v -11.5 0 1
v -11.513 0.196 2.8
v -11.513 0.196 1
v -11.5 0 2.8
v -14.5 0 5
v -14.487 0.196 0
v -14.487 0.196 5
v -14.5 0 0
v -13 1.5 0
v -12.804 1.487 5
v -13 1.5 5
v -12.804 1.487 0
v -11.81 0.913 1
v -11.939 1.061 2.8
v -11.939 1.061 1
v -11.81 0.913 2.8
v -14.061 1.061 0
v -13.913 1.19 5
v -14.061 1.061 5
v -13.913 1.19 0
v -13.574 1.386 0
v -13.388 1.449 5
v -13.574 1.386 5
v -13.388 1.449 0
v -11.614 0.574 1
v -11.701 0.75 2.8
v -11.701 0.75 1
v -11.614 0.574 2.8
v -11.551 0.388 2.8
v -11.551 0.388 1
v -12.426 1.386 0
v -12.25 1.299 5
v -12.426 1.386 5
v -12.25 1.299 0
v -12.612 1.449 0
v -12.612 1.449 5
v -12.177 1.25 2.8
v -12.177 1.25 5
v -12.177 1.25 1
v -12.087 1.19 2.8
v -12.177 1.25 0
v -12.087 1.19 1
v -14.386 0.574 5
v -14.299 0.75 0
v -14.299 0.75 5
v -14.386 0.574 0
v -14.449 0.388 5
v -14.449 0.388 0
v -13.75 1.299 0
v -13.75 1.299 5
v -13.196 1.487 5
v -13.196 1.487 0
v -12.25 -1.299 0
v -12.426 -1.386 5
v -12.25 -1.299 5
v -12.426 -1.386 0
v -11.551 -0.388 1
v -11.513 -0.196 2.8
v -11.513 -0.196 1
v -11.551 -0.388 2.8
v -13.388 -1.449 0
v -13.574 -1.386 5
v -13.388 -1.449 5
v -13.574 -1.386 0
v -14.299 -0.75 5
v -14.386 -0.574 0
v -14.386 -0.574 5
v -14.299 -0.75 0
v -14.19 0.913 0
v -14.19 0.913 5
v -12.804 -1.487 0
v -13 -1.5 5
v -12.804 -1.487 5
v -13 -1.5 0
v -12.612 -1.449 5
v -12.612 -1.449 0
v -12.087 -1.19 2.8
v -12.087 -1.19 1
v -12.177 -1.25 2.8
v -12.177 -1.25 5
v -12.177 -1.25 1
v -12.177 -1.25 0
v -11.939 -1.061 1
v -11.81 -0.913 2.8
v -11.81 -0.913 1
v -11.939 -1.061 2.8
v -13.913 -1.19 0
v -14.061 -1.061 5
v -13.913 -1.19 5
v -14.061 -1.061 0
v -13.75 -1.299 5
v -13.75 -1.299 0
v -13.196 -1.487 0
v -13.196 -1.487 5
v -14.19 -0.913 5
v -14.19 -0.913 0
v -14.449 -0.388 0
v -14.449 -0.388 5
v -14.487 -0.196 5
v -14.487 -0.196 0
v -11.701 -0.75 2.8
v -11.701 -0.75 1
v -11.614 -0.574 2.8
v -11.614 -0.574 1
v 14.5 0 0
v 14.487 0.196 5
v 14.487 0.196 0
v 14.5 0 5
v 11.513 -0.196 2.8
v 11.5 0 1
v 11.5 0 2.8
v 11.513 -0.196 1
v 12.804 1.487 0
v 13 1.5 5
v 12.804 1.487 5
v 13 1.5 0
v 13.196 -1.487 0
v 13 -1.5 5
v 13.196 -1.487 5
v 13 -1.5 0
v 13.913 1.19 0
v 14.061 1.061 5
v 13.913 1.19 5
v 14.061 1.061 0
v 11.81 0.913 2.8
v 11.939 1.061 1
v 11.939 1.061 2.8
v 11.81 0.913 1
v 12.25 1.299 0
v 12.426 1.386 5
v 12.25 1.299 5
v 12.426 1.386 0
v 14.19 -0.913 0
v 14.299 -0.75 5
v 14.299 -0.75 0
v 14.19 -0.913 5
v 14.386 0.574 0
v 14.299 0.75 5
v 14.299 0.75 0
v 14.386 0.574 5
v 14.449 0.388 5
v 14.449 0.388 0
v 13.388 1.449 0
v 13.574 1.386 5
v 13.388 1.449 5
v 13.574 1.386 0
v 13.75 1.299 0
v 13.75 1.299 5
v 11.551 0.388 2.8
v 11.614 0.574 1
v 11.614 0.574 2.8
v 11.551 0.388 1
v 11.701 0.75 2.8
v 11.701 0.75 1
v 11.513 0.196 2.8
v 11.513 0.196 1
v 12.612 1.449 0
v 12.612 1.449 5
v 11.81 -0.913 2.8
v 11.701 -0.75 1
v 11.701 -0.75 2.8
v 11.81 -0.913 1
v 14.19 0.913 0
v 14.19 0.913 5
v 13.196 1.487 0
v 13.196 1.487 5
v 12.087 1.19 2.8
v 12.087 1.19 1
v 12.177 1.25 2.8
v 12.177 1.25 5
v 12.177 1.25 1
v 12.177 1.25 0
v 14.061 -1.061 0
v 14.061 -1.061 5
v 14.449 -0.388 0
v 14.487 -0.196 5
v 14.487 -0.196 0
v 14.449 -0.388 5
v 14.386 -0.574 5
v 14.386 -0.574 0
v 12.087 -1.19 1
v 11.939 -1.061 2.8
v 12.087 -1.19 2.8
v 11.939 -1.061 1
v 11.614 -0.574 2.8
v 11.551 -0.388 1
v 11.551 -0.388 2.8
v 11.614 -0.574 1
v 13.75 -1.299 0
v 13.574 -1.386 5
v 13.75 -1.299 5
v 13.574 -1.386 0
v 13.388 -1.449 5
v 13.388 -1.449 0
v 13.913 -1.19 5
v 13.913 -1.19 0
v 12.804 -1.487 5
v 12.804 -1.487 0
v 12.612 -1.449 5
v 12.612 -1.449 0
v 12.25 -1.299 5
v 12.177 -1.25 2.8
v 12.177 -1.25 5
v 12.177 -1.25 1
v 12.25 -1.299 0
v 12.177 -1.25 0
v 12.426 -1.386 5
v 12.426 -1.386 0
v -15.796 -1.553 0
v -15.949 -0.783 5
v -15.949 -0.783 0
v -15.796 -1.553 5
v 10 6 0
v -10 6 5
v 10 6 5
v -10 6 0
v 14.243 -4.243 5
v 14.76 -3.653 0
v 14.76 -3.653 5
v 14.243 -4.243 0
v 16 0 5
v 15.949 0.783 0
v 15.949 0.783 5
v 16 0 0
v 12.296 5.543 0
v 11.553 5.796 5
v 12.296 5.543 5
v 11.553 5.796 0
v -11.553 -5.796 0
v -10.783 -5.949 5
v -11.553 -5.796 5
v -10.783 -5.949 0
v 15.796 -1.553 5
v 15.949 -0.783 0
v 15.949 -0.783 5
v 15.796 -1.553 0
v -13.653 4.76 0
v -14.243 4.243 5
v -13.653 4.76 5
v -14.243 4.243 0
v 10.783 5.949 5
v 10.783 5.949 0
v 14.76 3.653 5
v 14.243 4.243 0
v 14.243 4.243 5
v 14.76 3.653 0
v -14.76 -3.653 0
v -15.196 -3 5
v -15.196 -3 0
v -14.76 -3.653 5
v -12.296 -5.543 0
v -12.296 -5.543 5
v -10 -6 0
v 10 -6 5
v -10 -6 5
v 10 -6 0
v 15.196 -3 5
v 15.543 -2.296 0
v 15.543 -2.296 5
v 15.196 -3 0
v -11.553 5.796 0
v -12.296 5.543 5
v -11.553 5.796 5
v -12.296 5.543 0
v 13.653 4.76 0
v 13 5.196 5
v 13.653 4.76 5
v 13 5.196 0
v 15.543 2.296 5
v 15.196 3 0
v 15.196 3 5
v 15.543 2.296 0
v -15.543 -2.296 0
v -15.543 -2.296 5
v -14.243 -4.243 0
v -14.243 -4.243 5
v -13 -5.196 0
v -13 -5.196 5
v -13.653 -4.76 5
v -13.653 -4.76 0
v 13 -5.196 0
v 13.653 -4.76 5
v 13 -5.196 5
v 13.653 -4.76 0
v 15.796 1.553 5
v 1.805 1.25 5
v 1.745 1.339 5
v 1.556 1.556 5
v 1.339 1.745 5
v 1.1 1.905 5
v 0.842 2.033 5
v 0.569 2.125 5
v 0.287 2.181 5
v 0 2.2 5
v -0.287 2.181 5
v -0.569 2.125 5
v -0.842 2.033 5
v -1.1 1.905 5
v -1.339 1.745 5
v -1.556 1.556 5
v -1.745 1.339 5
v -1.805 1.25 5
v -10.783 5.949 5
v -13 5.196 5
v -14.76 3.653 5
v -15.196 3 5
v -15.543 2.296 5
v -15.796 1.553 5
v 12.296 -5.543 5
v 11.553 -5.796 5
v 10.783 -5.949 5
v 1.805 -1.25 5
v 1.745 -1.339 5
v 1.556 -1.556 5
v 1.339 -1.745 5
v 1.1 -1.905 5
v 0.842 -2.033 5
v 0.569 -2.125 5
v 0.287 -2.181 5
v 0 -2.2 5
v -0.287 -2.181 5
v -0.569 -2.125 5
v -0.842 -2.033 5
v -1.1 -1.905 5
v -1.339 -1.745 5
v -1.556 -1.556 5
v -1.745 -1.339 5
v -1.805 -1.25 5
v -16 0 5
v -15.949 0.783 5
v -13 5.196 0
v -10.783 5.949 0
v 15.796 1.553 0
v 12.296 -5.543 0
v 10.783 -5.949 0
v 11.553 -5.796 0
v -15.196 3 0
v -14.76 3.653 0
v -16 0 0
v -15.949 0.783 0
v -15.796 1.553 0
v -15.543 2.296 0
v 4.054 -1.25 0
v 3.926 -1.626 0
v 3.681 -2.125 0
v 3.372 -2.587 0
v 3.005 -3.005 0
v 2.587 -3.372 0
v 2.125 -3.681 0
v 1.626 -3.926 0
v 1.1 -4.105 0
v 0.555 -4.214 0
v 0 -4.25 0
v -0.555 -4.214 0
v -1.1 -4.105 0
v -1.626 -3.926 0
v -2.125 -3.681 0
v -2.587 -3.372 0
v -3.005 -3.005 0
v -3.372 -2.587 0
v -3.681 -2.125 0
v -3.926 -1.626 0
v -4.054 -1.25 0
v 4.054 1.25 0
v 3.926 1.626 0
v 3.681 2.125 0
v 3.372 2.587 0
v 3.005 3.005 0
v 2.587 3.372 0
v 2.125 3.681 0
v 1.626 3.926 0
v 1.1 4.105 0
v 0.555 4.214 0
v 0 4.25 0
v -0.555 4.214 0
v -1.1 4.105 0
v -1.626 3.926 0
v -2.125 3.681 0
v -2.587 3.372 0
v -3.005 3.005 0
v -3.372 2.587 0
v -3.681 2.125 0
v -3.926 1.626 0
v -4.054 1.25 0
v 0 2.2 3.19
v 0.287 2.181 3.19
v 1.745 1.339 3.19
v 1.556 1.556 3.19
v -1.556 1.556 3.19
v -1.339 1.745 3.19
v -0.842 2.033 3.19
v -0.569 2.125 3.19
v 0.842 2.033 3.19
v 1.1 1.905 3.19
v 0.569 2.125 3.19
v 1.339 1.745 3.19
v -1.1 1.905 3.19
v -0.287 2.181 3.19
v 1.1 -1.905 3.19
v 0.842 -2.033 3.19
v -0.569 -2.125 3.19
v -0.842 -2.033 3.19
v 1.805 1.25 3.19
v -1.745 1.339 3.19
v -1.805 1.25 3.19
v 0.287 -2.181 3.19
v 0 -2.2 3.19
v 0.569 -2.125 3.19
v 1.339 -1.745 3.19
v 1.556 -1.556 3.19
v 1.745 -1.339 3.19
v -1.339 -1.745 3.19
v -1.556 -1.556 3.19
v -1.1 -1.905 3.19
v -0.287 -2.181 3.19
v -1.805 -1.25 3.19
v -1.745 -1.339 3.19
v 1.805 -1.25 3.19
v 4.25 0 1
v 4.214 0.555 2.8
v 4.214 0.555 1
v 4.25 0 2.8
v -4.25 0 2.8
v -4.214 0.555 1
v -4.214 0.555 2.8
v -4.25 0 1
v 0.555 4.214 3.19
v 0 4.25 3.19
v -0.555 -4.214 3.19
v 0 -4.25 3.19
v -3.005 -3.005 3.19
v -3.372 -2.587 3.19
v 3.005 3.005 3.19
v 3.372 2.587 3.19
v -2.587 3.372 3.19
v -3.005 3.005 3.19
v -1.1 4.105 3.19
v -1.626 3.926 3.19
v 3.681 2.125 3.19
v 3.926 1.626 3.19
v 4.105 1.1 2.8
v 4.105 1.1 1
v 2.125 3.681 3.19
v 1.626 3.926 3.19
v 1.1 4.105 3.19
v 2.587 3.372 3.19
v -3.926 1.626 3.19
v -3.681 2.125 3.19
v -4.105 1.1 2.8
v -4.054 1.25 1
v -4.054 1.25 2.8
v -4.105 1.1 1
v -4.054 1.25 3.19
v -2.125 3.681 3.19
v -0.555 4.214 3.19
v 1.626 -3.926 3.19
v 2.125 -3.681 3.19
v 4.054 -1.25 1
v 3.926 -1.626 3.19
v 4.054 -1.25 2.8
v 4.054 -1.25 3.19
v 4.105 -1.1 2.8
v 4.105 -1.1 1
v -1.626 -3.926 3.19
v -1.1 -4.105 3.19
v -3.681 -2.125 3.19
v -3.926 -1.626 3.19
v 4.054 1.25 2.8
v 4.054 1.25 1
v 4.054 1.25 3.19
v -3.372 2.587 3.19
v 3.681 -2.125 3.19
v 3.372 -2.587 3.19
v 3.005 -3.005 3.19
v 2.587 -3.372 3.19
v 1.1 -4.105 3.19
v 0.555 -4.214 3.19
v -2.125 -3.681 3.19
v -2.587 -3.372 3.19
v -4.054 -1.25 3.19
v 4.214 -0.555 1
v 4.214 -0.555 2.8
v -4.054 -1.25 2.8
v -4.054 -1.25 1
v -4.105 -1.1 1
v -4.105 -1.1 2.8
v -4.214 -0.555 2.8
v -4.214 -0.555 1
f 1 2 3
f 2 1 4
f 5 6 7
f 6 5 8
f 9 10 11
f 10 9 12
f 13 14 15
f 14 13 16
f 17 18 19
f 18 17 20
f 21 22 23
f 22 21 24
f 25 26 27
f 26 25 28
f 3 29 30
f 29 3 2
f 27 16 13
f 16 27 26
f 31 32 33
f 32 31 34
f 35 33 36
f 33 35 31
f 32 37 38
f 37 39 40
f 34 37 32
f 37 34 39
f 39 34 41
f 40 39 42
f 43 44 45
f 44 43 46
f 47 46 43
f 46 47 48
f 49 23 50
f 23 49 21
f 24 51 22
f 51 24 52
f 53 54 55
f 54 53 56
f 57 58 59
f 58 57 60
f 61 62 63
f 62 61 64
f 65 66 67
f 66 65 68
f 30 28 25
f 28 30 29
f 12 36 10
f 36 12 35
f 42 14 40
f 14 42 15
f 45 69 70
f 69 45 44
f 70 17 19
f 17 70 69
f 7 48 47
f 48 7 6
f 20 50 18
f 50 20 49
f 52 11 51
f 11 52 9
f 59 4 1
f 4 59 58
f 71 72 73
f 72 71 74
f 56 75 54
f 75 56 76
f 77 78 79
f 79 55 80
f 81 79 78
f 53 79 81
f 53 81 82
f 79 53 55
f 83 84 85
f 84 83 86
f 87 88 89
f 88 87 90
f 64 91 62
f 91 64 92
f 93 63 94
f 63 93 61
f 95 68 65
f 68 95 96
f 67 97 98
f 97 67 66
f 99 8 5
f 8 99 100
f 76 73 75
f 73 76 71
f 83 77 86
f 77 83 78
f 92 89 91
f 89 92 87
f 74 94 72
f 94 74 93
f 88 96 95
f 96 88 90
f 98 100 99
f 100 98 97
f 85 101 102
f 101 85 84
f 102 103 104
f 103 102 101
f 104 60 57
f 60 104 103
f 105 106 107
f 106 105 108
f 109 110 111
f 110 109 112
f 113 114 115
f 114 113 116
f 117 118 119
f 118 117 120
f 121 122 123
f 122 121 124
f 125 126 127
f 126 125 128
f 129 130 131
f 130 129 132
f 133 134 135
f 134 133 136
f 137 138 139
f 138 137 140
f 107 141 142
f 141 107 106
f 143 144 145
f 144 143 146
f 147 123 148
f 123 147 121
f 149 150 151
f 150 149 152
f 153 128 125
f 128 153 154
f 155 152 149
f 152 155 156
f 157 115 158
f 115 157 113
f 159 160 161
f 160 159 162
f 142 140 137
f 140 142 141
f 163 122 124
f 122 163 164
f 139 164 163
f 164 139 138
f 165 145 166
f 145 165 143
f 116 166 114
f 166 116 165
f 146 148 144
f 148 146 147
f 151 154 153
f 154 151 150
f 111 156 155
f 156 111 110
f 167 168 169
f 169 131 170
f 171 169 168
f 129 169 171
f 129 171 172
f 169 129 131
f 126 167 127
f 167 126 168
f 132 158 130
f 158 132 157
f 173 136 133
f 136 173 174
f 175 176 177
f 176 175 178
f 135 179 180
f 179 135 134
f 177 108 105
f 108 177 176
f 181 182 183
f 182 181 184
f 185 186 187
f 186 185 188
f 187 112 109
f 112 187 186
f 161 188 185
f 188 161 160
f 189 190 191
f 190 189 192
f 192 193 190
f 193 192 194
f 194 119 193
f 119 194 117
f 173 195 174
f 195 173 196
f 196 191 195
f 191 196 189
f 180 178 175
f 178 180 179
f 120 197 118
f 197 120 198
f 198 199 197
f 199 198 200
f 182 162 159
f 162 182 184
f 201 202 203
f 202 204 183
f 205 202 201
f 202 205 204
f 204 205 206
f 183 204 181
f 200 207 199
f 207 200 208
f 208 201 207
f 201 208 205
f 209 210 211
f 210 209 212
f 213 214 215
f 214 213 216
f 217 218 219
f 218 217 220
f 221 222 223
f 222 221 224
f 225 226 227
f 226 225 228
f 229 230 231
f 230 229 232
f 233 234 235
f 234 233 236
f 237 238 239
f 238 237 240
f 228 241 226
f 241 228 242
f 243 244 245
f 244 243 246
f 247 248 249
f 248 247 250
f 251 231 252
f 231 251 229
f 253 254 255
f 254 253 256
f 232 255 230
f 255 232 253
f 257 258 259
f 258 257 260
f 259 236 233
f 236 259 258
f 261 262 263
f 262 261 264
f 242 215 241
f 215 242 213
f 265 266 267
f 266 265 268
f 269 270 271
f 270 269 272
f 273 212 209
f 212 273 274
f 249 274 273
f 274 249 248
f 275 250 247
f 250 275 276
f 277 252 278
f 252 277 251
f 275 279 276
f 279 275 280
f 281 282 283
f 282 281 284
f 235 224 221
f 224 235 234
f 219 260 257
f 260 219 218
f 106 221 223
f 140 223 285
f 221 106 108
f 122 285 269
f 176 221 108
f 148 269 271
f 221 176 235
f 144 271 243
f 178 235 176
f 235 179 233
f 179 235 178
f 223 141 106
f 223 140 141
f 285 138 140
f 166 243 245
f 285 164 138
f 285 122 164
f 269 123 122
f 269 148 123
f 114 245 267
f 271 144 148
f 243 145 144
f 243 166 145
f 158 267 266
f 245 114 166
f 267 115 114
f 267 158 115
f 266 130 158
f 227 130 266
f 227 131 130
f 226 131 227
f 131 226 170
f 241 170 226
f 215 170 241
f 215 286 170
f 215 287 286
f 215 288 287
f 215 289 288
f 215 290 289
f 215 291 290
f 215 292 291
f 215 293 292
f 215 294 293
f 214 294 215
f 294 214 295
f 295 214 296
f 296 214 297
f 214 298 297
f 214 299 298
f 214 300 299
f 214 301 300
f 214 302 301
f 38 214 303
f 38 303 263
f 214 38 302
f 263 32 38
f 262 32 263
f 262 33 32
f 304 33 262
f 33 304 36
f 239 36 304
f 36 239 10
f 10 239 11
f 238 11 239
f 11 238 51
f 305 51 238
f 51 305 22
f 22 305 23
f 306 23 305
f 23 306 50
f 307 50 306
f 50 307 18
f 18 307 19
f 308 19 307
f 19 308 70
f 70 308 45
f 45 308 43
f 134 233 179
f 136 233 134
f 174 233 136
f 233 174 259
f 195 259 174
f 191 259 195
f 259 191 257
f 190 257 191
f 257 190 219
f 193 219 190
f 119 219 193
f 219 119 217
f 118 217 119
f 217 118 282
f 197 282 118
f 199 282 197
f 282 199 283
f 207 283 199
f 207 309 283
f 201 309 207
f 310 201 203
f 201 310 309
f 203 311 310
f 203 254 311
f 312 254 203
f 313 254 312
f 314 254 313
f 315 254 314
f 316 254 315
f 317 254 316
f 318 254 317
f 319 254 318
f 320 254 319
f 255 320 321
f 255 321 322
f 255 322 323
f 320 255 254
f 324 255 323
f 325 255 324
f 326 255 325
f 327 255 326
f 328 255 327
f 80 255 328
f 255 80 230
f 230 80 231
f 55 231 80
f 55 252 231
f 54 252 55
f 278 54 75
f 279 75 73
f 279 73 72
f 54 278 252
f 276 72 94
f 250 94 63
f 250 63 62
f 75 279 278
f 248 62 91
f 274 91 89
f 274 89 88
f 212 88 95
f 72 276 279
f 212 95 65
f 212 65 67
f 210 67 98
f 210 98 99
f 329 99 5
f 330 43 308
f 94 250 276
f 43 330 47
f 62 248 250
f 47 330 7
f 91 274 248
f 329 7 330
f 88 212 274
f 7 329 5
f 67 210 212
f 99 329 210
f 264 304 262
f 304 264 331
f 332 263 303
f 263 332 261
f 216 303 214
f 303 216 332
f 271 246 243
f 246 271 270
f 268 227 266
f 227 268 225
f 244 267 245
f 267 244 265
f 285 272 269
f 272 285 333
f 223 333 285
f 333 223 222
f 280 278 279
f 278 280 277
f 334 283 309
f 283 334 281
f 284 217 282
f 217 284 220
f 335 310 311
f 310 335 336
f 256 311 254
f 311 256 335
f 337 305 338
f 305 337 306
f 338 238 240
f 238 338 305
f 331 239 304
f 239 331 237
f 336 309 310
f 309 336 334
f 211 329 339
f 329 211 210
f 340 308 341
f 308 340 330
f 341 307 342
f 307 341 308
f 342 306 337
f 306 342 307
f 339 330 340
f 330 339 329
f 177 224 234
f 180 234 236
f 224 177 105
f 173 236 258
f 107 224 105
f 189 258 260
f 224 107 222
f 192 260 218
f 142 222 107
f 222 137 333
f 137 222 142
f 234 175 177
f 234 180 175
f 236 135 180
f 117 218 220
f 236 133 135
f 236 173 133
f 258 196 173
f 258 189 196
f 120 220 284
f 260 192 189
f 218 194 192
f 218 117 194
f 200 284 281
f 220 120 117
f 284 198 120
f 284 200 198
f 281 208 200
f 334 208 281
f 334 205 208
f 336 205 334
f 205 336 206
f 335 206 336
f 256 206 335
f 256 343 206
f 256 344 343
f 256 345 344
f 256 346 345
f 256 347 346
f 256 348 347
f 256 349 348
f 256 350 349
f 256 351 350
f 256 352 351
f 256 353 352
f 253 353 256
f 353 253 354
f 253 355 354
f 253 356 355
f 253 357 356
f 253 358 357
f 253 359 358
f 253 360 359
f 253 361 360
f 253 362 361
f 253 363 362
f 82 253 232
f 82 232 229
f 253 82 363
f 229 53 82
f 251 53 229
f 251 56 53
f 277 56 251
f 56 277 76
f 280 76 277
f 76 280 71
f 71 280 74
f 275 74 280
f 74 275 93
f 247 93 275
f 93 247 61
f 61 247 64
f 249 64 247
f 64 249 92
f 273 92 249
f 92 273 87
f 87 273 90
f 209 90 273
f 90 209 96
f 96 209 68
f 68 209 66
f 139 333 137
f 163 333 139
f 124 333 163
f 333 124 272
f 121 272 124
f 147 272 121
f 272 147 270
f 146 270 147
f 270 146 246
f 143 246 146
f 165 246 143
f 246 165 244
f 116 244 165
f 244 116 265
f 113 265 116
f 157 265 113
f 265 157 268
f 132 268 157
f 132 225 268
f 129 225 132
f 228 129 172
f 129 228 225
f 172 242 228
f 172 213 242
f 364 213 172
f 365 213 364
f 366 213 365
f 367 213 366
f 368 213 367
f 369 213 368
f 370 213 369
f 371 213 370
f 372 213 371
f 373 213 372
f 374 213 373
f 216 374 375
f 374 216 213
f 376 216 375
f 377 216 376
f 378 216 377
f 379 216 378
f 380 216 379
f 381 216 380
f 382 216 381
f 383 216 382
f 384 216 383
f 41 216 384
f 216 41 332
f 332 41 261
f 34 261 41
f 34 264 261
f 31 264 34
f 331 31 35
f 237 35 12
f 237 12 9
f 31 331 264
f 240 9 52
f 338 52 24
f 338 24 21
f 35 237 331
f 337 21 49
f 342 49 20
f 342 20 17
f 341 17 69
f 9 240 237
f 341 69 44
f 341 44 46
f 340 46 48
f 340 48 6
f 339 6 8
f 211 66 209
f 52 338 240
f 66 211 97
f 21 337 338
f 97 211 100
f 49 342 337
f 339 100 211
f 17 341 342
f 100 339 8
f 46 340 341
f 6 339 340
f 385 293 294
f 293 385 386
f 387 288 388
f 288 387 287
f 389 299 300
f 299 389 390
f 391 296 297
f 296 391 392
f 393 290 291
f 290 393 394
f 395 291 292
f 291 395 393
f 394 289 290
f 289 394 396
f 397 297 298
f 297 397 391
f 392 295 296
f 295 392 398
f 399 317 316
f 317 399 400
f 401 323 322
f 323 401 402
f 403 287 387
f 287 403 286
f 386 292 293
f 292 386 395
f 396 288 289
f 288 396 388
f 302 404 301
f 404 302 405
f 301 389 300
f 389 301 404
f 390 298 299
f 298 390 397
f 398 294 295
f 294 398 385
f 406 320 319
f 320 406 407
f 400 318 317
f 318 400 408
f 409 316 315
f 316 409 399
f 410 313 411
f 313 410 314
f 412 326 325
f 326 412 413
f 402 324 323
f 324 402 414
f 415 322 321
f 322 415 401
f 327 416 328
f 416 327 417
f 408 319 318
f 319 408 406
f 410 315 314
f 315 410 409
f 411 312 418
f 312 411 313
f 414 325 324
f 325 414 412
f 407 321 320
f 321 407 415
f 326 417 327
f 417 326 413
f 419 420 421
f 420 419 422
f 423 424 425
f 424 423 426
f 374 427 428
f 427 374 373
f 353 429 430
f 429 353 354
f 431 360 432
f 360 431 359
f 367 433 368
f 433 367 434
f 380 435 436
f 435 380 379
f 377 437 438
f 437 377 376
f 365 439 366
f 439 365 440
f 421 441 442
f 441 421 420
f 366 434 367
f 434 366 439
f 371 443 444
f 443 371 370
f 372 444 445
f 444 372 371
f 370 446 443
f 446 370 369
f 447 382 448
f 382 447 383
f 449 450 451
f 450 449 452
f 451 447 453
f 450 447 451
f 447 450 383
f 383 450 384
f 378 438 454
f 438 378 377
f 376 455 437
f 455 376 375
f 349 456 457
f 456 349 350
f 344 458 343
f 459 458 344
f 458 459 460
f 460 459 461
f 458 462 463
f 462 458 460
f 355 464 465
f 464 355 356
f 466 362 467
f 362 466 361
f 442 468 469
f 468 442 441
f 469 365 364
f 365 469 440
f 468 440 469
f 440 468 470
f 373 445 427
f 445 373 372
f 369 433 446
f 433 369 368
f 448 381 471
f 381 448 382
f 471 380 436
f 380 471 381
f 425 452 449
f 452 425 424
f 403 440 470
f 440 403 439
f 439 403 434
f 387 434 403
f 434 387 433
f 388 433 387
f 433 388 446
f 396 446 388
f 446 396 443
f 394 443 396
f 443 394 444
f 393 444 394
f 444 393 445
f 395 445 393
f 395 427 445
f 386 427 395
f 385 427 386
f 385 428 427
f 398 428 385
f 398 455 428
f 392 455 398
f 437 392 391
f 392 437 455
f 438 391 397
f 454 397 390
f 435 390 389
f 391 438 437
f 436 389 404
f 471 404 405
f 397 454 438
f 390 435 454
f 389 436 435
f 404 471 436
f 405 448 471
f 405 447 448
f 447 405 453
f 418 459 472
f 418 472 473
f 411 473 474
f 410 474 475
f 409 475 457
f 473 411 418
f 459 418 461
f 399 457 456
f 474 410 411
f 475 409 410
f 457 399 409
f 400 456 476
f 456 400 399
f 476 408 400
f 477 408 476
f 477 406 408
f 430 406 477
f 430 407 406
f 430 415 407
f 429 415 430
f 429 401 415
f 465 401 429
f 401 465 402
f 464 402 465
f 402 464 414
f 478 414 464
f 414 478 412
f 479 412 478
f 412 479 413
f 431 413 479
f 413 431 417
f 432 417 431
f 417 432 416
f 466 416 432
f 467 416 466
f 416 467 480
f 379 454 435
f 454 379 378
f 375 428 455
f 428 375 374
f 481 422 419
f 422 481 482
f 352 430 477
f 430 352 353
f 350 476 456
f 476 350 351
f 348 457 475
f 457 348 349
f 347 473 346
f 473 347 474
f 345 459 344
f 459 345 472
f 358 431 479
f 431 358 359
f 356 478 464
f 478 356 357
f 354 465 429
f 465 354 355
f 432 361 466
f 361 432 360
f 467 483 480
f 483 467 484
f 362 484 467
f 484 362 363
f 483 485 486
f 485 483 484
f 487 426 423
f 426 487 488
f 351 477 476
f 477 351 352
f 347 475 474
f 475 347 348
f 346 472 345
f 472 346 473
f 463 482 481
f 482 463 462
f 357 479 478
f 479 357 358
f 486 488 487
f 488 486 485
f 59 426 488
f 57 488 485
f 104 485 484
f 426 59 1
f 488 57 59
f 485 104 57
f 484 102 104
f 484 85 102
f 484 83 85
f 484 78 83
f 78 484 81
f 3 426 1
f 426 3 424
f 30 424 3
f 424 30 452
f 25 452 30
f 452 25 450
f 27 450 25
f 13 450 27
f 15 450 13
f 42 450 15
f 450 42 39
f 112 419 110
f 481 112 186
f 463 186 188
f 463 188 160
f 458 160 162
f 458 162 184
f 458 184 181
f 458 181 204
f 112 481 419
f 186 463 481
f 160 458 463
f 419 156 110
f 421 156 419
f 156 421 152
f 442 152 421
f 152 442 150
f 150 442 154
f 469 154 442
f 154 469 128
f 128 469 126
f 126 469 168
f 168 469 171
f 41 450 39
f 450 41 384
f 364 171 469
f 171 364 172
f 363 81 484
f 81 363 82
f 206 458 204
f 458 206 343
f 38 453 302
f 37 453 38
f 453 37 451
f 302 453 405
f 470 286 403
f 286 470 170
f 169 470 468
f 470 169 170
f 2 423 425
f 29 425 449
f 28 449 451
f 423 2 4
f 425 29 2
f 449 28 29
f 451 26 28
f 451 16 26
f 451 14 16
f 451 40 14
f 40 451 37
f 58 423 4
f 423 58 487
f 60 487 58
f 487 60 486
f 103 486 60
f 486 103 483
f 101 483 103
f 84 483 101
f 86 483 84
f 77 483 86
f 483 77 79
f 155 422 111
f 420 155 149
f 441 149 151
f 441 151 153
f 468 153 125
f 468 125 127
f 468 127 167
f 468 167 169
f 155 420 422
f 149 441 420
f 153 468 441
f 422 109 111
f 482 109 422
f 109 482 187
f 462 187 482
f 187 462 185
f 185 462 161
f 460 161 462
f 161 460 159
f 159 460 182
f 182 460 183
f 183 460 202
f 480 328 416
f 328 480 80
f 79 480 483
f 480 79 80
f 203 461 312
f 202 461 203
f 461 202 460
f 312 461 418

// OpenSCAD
// Dock contact bar (2026-10-24, Enoch: "make contact plates that are
// perpendicular to the barrel contacts, to give some contact width").
// After run C the rollers sat at the cliff mounts' edges with a centimetre
// or two of lateral scatter run to run, more than a bolt head covers. This
// bar hangs on the pad plate's M4 (dock-pad-plate.scad) and runs ACROSS the
// roller: 32 mm of pad for a 10 mm roller.
//
// v2 (2026-10-25): the contact is a staple of bare 12 AWG solid copper
// (Romex ground; Enoch has no copper tape). The wire lies in a groove along
// the underside, standing ~1 mm proud so it is the lowest point, turns up
// through a hole at each end and lies in a groove on top back to the
// centre, where both legs wrap the bolt's shank under the nut - the bolt is
// then the conductor up to the ring terminal. The M4 comes up from below,
// its head in a pocket so it sits flush, not below the wire. Rotate the bar
// on the bolt to lie across the roller, then clamp. Two, one per side.
// Cut ~80 mm of wire per bar. Prints flat on its top face, no supports.

bar_l   = 32;
bar_w   = 12;
bar_t   = 5;
hole_d  = 4.4;
head_d  = 8.5;    // M4 pan head + play
head_h  = 3.2;    // pocket depth: head sits ~flush with the pad face
wire_d  = 2.05;   // 12 AWG bare solid
groove_w = 2.5;
under_depth = 1.0;    // wire stands wire_d - under_depth proud of the face
top_depth   = 2.2;    // legs lie just below the top face under the nut
leg_x   = 13;         // leg holes, from centre
leg_d   = 3.0;        // room for the bend radius
$fn = 48;

difference() {
  hull() for (x = [-bar_l / 2 + bar_w / 2, bar_l / 2 - bar_w / 2])
    translate([x, 0, 0]) cylinder(d = bar_w, h = bar_t);
  translate([0, 0, -1]) cylinder(d = hole_d, h = bar_t + 2);
  translate([0, 0, -0.01]) cylinder(d = head_d, h = head_h);   // head pocket on the underside (z = 0 face)
  // underside groove, end to end between the leg holes
  translate([-leg_x, -groove_w / 2, -0.01]) cube([2 * leg_x, groove_w, under_depth + 0.01]);
  // leg holes
  for (s = [-1, 1]) translate([s * leg_x, 0, -1]) cylinder(d = leg_d, h = bar_t + 2);
  // top grooves from each leg hole to the bolt
  translate([-leg_x, -groove_w / 2, bar_t - top_depth]) cube([2 * leg_x, groove_w, top_depth + 0.01]);
}
echo(str("dock pad bar v2 ", bar_l, " x ", bar_w, " x ", bar_t, ", 12 AWG staple, legs at +/-", leg_x,
         ", wire proud ", wire_d - under_depth, " mm"));
